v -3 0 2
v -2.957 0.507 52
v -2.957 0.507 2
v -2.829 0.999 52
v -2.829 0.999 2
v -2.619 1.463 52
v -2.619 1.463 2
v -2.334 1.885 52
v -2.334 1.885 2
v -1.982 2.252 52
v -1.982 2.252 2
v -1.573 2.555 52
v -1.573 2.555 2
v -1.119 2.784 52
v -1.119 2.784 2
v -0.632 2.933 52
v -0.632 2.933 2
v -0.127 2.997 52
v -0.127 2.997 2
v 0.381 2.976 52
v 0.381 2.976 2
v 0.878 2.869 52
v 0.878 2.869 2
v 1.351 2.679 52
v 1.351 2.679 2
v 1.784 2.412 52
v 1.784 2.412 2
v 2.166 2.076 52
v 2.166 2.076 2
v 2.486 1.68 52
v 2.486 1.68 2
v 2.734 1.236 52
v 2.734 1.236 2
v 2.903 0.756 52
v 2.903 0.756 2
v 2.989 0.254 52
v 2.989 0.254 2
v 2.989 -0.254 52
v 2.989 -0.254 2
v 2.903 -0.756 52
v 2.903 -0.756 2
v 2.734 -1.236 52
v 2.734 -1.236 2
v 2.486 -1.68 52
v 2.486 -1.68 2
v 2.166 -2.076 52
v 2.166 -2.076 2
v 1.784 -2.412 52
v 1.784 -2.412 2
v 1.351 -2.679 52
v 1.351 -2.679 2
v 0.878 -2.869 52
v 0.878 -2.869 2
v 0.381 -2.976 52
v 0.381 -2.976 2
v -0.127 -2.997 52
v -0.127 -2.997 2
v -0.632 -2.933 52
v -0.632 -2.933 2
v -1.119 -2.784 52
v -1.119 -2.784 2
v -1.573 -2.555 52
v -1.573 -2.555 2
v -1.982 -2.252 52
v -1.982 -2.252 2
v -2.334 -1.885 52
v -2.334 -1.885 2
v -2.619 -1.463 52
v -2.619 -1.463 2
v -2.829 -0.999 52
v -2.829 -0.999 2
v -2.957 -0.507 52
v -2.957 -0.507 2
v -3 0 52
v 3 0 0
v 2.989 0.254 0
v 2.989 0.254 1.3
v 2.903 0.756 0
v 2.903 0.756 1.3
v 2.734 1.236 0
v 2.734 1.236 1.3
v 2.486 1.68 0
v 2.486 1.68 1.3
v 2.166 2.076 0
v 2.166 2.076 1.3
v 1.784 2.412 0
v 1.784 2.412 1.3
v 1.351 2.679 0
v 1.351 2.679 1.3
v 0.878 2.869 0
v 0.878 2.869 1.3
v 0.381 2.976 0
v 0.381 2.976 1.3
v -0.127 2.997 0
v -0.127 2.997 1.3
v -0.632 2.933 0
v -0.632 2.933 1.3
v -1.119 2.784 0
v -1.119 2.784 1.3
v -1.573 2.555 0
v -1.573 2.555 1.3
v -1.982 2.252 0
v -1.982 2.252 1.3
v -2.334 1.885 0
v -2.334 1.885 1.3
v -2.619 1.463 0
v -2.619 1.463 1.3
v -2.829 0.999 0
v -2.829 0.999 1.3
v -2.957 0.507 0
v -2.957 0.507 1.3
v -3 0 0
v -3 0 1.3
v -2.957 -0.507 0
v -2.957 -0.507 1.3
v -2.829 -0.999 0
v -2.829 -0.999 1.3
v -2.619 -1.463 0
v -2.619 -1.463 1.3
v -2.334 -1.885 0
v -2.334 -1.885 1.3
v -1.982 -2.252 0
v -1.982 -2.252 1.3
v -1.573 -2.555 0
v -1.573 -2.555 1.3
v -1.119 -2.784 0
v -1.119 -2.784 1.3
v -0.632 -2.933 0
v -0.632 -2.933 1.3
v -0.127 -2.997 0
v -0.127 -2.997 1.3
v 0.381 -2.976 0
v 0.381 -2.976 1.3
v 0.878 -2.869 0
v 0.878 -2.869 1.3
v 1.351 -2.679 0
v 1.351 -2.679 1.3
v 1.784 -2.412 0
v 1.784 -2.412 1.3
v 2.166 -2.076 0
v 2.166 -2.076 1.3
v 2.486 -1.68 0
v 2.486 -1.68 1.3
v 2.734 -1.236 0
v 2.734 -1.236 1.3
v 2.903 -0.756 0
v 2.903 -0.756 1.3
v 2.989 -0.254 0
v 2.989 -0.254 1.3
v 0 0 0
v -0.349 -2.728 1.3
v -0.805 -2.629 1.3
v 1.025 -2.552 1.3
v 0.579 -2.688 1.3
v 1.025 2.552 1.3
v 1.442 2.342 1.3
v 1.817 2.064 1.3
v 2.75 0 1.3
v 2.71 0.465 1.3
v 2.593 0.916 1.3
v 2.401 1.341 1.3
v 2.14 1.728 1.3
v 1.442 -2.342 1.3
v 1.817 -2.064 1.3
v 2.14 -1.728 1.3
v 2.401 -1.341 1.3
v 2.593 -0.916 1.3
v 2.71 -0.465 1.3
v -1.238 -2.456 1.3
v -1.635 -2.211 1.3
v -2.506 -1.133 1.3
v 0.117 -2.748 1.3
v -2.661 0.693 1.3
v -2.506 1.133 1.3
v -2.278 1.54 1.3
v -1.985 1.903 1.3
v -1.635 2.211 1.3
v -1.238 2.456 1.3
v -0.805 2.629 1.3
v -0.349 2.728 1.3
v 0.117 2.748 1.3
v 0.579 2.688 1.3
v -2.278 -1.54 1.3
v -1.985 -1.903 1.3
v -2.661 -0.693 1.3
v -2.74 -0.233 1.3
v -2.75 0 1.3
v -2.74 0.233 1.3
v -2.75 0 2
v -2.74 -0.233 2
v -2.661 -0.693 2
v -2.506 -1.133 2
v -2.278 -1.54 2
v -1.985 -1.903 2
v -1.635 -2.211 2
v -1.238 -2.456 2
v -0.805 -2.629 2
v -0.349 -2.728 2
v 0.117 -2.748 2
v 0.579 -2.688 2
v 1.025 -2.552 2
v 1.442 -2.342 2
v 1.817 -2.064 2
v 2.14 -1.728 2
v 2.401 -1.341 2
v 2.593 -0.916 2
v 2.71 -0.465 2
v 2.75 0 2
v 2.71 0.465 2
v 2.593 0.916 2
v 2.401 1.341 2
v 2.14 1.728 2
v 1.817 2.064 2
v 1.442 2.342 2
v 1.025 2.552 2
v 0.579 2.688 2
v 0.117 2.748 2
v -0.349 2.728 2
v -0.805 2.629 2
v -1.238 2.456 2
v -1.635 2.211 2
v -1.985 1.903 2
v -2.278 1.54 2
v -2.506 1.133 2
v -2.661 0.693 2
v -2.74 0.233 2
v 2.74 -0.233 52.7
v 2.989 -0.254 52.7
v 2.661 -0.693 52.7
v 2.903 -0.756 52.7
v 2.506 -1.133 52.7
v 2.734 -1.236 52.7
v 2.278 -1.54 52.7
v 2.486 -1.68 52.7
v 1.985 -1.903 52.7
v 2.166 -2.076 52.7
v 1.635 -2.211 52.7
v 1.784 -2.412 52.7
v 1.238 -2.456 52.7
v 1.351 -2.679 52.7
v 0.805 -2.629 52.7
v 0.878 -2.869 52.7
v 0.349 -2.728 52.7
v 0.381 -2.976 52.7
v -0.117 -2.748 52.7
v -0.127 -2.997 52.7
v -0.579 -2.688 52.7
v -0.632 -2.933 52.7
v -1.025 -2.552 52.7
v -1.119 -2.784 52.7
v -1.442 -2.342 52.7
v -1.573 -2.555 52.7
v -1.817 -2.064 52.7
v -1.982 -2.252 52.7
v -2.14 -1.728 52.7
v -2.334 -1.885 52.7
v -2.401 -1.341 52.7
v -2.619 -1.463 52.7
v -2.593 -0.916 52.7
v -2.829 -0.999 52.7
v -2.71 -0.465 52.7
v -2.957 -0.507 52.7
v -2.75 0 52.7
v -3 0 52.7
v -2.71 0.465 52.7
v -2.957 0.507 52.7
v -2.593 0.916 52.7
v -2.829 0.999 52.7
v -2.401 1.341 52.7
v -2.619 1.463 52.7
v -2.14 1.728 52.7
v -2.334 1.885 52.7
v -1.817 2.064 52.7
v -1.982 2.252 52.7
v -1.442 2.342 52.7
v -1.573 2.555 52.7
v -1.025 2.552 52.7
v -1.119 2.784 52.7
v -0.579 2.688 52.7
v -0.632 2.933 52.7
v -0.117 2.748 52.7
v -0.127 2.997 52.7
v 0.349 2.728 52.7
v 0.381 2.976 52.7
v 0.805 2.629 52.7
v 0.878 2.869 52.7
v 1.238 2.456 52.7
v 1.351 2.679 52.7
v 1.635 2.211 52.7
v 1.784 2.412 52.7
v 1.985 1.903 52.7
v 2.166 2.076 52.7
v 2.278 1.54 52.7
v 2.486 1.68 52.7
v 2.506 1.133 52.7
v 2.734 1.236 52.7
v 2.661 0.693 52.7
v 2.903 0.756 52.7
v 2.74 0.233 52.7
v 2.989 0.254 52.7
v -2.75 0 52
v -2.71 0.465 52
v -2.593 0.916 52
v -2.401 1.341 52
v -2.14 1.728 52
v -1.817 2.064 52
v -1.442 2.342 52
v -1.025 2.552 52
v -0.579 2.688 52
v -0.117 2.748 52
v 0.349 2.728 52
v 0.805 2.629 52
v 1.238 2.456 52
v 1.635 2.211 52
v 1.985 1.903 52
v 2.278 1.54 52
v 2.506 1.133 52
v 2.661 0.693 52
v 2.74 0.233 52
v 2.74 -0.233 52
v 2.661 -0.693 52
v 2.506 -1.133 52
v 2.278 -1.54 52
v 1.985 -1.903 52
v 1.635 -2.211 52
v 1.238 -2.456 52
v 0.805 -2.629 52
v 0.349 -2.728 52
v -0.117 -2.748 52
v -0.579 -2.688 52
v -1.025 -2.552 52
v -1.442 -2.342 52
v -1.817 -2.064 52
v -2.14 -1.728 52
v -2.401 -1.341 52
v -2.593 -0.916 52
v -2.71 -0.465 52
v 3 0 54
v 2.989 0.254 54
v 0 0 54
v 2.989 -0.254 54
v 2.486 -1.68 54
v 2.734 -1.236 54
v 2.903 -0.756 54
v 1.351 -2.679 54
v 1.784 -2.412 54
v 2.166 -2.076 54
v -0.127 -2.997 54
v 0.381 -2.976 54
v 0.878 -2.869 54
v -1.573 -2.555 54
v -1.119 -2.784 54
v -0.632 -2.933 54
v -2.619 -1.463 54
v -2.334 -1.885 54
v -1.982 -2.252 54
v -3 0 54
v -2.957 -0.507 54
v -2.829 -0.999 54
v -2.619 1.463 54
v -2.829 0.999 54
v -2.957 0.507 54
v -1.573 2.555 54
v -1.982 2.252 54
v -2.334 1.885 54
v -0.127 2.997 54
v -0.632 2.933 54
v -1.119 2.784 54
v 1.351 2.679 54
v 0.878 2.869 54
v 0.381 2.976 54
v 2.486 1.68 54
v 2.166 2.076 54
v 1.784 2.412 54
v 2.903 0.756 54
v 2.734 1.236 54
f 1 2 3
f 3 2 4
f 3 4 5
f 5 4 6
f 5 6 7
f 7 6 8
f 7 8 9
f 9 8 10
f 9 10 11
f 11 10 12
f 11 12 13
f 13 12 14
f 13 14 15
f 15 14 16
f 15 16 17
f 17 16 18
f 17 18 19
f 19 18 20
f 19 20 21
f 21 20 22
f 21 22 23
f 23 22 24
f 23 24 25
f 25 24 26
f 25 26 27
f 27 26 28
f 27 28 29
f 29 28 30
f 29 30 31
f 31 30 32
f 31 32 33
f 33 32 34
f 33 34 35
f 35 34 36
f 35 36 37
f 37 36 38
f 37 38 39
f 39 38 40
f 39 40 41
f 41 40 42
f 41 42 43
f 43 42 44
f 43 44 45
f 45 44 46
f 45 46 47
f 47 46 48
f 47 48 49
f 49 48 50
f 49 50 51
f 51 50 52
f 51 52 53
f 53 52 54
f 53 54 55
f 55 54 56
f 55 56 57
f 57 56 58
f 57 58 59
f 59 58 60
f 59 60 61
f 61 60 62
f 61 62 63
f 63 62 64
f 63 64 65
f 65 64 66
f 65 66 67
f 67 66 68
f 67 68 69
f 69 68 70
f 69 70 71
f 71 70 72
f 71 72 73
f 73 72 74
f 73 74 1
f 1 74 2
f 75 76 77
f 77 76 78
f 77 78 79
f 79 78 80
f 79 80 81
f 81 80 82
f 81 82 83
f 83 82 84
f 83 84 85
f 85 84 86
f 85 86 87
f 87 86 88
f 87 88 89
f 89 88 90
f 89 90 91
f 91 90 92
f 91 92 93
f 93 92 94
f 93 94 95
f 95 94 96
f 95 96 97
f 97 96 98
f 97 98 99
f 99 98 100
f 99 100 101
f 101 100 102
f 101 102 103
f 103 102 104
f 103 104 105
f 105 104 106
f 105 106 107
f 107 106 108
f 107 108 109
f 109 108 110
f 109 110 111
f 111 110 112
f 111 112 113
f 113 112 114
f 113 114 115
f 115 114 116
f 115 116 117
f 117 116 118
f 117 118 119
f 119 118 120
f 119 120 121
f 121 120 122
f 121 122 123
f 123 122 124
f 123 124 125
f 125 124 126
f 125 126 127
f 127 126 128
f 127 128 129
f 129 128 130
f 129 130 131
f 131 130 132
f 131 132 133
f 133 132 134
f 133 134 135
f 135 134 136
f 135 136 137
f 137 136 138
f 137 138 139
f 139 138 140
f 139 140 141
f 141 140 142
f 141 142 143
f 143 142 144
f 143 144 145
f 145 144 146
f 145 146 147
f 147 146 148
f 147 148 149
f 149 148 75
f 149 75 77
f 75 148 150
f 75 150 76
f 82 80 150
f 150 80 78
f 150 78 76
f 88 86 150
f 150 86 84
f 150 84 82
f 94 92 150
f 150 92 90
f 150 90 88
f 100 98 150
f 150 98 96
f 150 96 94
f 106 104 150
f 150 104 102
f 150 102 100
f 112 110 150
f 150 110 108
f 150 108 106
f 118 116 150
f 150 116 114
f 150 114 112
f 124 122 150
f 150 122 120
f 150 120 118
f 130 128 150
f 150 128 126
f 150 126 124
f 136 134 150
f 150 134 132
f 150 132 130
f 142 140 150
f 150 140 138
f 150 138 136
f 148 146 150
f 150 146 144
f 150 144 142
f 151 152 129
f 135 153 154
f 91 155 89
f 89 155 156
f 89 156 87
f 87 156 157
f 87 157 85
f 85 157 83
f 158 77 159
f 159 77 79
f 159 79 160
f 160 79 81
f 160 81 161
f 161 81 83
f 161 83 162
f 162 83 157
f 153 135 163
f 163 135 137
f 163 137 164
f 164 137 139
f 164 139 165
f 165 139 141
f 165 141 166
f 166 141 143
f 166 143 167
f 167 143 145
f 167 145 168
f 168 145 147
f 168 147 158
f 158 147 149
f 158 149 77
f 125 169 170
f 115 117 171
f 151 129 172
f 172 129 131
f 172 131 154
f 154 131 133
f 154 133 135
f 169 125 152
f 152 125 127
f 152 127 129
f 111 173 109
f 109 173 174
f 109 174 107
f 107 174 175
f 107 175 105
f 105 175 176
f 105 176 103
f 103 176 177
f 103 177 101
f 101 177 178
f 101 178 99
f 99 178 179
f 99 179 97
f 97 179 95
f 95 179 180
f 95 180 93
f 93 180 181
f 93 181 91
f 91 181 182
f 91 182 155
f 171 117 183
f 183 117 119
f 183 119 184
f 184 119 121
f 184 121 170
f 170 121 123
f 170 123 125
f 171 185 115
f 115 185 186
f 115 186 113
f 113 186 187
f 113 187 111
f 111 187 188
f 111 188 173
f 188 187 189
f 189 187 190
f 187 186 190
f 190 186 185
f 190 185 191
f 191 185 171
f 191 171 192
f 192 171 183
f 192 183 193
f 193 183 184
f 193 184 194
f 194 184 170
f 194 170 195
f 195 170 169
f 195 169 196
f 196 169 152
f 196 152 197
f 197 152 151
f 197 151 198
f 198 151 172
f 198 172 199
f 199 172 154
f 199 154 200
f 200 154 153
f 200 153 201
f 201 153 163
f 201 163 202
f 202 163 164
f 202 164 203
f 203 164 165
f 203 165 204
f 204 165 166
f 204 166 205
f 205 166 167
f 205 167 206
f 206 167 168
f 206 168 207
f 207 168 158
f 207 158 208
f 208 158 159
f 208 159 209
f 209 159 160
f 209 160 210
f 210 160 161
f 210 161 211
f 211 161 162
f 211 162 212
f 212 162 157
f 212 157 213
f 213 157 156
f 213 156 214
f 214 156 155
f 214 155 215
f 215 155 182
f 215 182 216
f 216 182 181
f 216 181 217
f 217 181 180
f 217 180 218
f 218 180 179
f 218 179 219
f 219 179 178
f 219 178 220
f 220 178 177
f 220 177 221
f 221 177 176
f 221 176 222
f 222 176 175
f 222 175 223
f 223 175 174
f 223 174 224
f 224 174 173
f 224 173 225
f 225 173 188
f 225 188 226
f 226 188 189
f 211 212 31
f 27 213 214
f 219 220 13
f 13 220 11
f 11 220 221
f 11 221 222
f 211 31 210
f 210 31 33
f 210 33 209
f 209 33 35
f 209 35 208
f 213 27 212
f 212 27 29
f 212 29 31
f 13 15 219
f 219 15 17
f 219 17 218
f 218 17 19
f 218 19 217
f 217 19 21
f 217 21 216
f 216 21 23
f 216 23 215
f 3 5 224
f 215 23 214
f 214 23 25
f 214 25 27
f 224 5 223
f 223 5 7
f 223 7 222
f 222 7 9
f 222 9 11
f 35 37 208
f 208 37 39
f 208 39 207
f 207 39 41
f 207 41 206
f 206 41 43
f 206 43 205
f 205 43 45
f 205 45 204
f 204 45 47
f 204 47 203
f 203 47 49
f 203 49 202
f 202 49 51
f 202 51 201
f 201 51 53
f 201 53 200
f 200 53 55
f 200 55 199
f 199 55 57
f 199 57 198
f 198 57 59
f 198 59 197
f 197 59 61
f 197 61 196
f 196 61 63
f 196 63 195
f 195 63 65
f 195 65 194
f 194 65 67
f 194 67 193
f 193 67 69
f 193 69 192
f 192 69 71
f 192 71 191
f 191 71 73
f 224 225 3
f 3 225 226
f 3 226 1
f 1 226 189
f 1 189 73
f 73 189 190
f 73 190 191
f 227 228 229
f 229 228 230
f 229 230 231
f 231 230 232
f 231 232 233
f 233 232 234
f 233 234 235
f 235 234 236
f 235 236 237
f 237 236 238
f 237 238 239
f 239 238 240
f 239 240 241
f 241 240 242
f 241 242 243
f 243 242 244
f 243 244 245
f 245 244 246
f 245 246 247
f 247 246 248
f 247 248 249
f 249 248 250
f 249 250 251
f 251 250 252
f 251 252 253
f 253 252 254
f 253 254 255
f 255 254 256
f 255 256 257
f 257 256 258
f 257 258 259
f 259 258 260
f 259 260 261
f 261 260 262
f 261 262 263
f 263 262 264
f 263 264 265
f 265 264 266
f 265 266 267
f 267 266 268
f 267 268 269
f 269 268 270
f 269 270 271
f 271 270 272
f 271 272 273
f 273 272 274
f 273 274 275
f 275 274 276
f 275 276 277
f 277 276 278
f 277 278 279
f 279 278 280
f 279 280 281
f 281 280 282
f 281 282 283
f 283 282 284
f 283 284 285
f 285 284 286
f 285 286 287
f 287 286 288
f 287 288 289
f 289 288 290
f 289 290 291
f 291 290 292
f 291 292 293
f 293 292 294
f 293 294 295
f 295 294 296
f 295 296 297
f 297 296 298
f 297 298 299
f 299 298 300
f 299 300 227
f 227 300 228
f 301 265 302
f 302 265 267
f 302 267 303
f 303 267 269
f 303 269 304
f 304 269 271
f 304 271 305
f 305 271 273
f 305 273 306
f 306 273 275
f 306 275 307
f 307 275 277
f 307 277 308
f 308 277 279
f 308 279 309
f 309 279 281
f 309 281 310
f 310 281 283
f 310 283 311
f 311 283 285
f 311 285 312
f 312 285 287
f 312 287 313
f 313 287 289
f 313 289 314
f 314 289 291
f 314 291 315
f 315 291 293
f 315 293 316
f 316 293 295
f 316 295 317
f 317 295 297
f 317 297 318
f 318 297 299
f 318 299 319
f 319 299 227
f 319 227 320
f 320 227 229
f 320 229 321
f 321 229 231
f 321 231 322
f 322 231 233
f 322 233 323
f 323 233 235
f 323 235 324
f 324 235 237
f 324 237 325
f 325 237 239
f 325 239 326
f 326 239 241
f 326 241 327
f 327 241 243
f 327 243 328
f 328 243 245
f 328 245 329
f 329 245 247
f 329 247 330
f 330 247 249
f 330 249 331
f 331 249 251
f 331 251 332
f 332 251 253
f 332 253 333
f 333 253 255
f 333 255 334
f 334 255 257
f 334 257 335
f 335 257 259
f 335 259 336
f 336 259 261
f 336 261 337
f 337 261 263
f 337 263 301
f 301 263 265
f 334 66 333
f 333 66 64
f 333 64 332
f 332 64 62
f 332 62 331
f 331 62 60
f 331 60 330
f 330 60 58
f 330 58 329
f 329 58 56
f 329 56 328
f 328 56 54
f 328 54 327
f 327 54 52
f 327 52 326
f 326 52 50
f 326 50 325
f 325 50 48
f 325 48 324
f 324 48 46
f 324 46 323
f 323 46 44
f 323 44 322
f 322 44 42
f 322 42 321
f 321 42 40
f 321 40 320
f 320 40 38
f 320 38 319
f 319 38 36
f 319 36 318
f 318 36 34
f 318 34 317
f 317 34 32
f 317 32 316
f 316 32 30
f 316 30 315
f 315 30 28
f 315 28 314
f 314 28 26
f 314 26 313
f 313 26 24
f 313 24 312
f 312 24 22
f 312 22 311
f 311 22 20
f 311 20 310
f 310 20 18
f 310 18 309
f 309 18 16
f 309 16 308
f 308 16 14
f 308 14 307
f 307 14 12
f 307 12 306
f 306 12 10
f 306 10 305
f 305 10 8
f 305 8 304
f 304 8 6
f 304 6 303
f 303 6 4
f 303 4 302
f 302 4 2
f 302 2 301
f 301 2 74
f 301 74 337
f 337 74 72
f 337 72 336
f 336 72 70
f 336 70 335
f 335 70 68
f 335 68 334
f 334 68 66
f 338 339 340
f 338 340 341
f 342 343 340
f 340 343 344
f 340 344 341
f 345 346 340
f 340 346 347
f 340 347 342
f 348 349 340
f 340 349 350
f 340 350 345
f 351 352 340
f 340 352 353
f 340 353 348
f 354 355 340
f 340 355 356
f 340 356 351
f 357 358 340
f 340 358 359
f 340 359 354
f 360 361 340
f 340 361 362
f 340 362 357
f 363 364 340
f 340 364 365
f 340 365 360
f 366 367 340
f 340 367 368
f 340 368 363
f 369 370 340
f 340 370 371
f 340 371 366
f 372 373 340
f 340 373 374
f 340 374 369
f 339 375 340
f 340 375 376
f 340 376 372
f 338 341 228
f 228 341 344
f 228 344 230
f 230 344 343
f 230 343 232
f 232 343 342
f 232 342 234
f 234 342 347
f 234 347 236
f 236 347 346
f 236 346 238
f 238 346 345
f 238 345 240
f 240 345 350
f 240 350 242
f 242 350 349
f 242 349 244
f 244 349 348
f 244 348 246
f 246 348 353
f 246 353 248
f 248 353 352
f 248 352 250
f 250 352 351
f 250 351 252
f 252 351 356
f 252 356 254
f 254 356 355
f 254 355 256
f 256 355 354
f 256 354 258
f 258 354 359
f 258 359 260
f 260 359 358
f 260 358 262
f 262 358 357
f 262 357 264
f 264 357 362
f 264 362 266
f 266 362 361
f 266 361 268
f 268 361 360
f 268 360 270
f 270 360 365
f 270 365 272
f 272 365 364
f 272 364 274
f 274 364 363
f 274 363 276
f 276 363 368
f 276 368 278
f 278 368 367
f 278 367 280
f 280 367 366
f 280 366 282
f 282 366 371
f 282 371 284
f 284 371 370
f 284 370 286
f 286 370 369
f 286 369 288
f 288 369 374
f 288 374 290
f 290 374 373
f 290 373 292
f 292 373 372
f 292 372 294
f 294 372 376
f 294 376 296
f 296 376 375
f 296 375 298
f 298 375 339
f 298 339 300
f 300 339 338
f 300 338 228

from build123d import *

# Parameters (mm, degrees)
SKETCH_1_R          = 3
EXTRUDE_1_DEPTH     = 54
SKETCH_2_R          = 3
SKETCH_2_R_2        = 2.75
CUT_EXTRUDE_1_DEPTH = 0.35


with BuildPart() as part:
    # 스케치1 → 보스-돌출1 (new body)
    with BuildSketch(Plane.XY):
        Circle(SKETCH_1_R)
    extrude(amount=EXTRUDE_1_DEPTH)

    # 스케치2 → 컷-돌출1 (cut, symmetric)
    with BuildSketch(Plane(origin=(0, 0, 1.65), x_dir=(-1, 0, 0), z_dir=(0, 0, -1))):
        Circle(SKETCH_2_R)
        Circle(SKETCH_2_R_2, mode=Mode.SUBTRACT)
    cut_extrude_1 = extrude(amount=CUT_EXTRUDE_1_DEPTH, both=True, mode=Mode.SUBTRACT)

    # 대칭 복사1: 컷-돌출1 across plane
    add(cut_extrude_1.mirror(Plane(origin=(0, 0, 27), x_dir=(1, 0, 0), z_dir=(0, 0, -1))), mode=Mode.SUBTRACT)


solid = part.part
